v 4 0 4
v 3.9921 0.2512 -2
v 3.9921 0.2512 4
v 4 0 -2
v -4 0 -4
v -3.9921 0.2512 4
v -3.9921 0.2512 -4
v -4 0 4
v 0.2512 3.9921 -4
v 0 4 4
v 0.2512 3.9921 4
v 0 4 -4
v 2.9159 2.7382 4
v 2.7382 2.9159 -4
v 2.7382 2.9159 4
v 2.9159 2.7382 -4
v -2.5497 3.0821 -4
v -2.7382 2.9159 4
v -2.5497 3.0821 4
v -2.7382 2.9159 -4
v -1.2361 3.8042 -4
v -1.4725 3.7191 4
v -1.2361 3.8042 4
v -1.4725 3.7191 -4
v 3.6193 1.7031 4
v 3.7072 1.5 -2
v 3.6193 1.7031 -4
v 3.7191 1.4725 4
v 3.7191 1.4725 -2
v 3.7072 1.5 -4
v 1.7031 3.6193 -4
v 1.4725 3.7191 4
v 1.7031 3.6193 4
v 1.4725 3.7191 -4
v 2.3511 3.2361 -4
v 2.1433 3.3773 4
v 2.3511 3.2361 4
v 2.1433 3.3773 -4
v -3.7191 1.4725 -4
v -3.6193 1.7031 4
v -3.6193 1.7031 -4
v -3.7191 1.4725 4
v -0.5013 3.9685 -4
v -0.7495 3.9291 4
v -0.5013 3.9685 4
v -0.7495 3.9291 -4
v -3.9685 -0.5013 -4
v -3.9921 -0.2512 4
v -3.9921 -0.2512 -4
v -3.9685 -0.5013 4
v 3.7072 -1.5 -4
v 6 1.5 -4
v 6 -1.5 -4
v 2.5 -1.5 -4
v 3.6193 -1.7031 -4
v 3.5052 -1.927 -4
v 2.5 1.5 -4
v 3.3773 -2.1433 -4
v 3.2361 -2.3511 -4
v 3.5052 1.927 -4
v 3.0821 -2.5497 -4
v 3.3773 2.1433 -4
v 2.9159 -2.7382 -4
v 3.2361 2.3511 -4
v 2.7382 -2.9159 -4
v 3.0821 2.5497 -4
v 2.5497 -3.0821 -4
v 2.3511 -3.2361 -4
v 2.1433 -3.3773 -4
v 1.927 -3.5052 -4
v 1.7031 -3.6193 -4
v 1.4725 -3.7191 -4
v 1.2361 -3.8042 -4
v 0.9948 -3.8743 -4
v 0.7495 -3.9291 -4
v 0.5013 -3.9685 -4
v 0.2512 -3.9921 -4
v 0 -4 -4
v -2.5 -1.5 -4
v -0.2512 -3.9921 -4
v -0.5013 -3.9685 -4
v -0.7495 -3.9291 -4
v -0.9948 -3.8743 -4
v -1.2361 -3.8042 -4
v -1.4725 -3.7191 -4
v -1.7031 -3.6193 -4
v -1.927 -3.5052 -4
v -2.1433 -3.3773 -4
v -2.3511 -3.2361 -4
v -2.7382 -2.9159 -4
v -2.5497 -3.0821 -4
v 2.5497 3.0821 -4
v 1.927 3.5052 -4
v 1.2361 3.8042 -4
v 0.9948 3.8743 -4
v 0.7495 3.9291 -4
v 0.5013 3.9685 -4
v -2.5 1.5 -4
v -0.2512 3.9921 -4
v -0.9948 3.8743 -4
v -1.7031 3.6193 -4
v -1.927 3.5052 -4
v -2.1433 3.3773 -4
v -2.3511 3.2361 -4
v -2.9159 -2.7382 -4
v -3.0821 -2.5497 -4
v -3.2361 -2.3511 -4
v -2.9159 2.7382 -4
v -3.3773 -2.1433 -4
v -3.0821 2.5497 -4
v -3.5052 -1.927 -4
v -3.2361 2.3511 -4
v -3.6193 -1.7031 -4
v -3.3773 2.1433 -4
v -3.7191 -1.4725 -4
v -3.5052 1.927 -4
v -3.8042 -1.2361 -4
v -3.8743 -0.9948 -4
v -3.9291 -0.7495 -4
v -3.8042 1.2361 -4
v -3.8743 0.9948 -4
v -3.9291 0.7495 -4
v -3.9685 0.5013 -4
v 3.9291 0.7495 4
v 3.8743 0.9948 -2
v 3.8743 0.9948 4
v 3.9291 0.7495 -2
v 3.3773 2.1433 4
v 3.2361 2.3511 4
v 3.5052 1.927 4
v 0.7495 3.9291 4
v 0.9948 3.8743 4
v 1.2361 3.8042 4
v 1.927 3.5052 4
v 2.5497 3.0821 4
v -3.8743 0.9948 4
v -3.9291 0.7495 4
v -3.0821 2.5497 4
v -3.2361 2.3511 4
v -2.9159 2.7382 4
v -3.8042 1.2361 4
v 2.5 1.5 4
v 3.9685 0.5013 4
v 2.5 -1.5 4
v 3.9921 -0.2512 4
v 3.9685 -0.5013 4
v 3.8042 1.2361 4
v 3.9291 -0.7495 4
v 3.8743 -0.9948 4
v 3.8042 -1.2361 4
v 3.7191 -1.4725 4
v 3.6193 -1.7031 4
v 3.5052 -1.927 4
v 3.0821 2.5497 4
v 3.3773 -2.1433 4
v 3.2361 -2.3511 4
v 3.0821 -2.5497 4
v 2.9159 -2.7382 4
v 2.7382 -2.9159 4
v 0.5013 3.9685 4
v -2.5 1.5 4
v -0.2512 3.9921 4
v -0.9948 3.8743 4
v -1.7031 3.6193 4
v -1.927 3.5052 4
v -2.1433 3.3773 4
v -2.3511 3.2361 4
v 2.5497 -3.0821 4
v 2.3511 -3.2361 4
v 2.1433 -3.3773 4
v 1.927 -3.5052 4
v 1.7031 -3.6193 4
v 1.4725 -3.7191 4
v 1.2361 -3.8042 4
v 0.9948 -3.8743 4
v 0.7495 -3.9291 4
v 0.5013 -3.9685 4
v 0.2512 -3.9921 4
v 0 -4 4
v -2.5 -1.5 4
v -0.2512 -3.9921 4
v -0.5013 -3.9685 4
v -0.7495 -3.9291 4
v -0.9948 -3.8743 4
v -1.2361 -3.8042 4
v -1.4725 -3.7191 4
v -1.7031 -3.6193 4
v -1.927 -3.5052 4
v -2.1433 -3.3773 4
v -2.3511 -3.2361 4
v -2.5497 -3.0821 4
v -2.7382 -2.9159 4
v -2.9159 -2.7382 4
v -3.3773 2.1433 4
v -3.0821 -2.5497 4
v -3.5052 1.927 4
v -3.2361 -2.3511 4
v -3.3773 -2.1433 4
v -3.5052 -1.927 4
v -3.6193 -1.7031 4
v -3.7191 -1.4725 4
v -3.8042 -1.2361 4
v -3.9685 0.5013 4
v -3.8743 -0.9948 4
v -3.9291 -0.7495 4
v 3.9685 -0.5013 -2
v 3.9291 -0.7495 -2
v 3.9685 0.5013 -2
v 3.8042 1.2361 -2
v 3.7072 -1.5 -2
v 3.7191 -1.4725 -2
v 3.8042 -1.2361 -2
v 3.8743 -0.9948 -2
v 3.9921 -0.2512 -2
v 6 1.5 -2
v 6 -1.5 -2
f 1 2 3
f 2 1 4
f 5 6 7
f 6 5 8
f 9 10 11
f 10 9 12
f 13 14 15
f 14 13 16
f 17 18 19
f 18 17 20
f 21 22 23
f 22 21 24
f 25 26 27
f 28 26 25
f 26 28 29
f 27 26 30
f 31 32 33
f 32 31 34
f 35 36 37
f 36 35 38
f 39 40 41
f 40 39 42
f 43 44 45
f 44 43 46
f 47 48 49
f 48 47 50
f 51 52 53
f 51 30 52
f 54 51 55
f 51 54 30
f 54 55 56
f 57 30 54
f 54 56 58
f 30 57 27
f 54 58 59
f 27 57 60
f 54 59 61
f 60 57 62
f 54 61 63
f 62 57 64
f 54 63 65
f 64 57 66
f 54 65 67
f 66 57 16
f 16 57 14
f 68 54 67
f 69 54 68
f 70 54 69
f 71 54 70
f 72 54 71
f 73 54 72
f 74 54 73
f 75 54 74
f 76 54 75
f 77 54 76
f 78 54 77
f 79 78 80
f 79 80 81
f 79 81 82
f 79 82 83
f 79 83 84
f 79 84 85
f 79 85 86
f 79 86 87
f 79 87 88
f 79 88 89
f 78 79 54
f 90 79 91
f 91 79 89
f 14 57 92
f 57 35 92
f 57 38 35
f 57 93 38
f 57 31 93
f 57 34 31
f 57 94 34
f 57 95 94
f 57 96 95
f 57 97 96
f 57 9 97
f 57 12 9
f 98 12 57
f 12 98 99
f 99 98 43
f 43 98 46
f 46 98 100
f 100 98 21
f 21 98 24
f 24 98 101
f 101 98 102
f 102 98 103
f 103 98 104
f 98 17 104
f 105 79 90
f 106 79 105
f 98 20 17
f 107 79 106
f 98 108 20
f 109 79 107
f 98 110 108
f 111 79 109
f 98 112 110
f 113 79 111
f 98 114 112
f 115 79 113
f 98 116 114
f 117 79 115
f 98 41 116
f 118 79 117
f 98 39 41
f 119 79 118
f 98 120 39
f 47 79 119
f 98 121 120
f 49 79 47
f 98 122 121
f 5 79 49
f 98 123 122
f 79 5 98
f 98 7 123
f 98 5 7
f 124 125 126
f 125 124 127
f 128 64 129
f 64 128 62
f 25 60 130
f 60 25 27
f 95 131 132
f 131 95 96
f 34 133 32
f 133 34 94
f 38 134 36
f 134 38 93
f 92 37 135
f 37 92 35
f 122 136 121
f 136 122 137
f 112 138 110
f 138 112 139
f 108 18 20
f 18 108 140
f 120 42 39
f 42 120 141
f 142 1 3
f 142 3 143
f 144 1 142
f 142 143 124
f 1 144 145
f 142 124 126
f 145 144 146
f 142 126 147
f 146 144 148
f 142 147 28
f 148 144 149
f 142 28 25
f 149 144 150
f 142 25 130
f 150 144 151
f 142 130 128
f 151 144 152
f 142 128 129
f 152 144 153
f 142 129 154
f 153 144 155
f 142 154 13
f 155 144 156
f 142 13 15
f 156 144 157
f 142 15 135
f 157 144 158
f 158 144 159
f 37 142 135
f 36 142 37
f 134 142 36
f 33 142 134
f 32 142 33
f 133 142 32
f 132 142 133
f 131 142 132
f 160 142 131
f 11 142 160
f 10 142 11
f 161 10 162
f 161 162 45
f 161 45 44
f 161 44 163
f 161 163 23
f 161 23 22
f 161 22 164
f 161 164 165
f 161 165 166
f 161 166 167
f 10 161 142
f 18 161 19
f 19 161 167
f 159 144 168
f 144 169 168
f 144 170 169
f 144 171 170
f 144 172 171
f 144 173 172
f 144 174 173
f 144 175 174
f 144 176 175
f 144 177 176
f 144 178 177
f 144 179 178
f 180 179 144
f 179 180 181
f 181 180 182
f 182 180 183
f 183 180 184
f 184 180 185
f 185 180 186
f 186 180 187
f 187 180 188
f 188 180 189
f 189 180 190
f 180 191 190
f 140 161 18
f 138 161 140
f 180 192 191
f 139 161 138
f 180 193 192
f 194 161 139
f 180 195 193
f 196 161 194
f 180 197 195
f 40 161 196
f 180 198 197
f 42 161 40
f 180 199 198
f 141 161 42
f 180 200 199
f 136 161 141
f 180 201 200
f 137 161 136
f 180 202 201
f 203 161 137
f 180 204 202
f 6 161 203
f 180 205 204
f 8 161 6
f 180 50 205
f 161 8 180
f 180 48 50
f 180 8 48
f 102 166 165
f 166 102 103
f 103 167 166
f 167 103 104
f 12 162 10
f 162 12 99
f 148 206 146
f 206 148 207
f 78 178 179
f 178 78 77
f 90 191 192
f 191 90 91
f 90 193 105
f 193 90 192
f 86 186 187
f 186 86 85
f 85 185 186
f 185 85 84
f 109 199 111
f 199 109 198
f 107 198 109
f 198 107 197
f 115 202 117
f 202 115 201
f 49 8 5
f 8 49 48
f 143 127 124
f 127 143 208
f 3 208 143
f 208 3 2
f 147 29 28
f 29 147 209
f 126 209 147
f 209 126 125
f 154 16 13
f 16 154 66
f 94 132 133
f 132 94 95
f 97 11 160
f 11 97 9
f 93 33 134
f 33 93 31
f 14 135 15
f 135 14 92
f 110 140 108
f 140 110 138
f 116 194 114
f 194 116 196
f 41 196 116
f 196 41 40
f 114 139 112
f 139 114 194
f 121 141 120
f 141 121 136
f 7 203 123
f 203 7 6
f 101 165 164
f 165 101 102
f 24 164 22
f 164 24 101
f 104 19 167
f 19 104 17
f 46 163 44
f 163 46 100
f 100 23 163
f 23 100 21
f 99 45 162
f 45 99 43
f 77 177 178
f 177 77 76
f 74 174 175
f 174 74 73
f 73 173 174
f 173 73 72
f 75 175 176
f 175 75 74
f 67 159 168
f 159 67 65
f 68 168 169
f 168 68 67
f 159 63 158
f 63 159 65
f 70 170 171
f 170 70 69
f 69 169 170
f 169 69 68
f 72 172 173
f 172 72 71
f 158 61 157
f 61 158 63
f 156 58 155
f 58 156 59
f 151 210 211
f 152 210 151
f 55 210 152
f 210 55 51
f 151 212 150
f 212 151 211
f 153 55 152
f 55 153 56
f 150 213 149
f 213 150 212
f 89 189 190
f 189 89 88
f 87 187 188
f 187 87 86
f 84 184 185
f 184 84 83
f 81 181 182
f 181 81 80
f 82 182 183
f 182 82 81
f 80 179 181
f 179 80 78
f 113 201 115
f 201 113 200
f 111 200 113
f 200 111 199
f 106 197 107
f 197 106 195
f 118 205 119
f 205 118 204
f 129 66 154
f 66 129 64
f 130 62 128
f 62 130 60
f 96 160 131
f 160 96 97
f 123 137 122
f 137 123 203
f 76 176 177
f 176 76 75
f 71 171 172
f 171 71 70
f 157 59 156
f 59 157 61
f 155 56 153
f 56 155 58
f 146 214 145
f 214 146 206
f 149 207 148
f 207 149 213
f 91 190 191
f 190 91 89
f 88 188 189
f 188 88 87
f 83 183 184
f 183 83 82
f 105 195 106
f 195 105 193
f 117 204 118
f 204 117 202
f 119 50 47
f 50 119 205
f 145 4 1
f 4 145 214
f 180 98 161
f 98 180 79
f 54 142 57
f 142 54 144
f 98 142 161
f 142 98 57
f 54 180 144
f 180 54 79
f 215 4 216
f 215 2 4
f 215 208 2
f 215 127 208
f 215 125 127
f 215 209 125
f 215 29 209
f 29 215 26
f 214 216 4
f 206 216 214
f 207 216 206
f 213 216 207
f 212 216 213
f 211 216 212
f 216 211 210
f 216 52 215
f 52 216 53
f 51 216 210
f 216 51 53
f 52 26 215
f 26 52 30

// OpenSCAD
$fn=100;

module clip(height, diam)
{
    #translate([diam+3/2-1, 0, -((height - 2)/2)]){
        cube([3,3,2], center=true);
    }
    difference() {
        cylinder(height,diam,diam, center=true);
        cube([5,3,height + 2], center=true);
    }
}

clip(8,4);
